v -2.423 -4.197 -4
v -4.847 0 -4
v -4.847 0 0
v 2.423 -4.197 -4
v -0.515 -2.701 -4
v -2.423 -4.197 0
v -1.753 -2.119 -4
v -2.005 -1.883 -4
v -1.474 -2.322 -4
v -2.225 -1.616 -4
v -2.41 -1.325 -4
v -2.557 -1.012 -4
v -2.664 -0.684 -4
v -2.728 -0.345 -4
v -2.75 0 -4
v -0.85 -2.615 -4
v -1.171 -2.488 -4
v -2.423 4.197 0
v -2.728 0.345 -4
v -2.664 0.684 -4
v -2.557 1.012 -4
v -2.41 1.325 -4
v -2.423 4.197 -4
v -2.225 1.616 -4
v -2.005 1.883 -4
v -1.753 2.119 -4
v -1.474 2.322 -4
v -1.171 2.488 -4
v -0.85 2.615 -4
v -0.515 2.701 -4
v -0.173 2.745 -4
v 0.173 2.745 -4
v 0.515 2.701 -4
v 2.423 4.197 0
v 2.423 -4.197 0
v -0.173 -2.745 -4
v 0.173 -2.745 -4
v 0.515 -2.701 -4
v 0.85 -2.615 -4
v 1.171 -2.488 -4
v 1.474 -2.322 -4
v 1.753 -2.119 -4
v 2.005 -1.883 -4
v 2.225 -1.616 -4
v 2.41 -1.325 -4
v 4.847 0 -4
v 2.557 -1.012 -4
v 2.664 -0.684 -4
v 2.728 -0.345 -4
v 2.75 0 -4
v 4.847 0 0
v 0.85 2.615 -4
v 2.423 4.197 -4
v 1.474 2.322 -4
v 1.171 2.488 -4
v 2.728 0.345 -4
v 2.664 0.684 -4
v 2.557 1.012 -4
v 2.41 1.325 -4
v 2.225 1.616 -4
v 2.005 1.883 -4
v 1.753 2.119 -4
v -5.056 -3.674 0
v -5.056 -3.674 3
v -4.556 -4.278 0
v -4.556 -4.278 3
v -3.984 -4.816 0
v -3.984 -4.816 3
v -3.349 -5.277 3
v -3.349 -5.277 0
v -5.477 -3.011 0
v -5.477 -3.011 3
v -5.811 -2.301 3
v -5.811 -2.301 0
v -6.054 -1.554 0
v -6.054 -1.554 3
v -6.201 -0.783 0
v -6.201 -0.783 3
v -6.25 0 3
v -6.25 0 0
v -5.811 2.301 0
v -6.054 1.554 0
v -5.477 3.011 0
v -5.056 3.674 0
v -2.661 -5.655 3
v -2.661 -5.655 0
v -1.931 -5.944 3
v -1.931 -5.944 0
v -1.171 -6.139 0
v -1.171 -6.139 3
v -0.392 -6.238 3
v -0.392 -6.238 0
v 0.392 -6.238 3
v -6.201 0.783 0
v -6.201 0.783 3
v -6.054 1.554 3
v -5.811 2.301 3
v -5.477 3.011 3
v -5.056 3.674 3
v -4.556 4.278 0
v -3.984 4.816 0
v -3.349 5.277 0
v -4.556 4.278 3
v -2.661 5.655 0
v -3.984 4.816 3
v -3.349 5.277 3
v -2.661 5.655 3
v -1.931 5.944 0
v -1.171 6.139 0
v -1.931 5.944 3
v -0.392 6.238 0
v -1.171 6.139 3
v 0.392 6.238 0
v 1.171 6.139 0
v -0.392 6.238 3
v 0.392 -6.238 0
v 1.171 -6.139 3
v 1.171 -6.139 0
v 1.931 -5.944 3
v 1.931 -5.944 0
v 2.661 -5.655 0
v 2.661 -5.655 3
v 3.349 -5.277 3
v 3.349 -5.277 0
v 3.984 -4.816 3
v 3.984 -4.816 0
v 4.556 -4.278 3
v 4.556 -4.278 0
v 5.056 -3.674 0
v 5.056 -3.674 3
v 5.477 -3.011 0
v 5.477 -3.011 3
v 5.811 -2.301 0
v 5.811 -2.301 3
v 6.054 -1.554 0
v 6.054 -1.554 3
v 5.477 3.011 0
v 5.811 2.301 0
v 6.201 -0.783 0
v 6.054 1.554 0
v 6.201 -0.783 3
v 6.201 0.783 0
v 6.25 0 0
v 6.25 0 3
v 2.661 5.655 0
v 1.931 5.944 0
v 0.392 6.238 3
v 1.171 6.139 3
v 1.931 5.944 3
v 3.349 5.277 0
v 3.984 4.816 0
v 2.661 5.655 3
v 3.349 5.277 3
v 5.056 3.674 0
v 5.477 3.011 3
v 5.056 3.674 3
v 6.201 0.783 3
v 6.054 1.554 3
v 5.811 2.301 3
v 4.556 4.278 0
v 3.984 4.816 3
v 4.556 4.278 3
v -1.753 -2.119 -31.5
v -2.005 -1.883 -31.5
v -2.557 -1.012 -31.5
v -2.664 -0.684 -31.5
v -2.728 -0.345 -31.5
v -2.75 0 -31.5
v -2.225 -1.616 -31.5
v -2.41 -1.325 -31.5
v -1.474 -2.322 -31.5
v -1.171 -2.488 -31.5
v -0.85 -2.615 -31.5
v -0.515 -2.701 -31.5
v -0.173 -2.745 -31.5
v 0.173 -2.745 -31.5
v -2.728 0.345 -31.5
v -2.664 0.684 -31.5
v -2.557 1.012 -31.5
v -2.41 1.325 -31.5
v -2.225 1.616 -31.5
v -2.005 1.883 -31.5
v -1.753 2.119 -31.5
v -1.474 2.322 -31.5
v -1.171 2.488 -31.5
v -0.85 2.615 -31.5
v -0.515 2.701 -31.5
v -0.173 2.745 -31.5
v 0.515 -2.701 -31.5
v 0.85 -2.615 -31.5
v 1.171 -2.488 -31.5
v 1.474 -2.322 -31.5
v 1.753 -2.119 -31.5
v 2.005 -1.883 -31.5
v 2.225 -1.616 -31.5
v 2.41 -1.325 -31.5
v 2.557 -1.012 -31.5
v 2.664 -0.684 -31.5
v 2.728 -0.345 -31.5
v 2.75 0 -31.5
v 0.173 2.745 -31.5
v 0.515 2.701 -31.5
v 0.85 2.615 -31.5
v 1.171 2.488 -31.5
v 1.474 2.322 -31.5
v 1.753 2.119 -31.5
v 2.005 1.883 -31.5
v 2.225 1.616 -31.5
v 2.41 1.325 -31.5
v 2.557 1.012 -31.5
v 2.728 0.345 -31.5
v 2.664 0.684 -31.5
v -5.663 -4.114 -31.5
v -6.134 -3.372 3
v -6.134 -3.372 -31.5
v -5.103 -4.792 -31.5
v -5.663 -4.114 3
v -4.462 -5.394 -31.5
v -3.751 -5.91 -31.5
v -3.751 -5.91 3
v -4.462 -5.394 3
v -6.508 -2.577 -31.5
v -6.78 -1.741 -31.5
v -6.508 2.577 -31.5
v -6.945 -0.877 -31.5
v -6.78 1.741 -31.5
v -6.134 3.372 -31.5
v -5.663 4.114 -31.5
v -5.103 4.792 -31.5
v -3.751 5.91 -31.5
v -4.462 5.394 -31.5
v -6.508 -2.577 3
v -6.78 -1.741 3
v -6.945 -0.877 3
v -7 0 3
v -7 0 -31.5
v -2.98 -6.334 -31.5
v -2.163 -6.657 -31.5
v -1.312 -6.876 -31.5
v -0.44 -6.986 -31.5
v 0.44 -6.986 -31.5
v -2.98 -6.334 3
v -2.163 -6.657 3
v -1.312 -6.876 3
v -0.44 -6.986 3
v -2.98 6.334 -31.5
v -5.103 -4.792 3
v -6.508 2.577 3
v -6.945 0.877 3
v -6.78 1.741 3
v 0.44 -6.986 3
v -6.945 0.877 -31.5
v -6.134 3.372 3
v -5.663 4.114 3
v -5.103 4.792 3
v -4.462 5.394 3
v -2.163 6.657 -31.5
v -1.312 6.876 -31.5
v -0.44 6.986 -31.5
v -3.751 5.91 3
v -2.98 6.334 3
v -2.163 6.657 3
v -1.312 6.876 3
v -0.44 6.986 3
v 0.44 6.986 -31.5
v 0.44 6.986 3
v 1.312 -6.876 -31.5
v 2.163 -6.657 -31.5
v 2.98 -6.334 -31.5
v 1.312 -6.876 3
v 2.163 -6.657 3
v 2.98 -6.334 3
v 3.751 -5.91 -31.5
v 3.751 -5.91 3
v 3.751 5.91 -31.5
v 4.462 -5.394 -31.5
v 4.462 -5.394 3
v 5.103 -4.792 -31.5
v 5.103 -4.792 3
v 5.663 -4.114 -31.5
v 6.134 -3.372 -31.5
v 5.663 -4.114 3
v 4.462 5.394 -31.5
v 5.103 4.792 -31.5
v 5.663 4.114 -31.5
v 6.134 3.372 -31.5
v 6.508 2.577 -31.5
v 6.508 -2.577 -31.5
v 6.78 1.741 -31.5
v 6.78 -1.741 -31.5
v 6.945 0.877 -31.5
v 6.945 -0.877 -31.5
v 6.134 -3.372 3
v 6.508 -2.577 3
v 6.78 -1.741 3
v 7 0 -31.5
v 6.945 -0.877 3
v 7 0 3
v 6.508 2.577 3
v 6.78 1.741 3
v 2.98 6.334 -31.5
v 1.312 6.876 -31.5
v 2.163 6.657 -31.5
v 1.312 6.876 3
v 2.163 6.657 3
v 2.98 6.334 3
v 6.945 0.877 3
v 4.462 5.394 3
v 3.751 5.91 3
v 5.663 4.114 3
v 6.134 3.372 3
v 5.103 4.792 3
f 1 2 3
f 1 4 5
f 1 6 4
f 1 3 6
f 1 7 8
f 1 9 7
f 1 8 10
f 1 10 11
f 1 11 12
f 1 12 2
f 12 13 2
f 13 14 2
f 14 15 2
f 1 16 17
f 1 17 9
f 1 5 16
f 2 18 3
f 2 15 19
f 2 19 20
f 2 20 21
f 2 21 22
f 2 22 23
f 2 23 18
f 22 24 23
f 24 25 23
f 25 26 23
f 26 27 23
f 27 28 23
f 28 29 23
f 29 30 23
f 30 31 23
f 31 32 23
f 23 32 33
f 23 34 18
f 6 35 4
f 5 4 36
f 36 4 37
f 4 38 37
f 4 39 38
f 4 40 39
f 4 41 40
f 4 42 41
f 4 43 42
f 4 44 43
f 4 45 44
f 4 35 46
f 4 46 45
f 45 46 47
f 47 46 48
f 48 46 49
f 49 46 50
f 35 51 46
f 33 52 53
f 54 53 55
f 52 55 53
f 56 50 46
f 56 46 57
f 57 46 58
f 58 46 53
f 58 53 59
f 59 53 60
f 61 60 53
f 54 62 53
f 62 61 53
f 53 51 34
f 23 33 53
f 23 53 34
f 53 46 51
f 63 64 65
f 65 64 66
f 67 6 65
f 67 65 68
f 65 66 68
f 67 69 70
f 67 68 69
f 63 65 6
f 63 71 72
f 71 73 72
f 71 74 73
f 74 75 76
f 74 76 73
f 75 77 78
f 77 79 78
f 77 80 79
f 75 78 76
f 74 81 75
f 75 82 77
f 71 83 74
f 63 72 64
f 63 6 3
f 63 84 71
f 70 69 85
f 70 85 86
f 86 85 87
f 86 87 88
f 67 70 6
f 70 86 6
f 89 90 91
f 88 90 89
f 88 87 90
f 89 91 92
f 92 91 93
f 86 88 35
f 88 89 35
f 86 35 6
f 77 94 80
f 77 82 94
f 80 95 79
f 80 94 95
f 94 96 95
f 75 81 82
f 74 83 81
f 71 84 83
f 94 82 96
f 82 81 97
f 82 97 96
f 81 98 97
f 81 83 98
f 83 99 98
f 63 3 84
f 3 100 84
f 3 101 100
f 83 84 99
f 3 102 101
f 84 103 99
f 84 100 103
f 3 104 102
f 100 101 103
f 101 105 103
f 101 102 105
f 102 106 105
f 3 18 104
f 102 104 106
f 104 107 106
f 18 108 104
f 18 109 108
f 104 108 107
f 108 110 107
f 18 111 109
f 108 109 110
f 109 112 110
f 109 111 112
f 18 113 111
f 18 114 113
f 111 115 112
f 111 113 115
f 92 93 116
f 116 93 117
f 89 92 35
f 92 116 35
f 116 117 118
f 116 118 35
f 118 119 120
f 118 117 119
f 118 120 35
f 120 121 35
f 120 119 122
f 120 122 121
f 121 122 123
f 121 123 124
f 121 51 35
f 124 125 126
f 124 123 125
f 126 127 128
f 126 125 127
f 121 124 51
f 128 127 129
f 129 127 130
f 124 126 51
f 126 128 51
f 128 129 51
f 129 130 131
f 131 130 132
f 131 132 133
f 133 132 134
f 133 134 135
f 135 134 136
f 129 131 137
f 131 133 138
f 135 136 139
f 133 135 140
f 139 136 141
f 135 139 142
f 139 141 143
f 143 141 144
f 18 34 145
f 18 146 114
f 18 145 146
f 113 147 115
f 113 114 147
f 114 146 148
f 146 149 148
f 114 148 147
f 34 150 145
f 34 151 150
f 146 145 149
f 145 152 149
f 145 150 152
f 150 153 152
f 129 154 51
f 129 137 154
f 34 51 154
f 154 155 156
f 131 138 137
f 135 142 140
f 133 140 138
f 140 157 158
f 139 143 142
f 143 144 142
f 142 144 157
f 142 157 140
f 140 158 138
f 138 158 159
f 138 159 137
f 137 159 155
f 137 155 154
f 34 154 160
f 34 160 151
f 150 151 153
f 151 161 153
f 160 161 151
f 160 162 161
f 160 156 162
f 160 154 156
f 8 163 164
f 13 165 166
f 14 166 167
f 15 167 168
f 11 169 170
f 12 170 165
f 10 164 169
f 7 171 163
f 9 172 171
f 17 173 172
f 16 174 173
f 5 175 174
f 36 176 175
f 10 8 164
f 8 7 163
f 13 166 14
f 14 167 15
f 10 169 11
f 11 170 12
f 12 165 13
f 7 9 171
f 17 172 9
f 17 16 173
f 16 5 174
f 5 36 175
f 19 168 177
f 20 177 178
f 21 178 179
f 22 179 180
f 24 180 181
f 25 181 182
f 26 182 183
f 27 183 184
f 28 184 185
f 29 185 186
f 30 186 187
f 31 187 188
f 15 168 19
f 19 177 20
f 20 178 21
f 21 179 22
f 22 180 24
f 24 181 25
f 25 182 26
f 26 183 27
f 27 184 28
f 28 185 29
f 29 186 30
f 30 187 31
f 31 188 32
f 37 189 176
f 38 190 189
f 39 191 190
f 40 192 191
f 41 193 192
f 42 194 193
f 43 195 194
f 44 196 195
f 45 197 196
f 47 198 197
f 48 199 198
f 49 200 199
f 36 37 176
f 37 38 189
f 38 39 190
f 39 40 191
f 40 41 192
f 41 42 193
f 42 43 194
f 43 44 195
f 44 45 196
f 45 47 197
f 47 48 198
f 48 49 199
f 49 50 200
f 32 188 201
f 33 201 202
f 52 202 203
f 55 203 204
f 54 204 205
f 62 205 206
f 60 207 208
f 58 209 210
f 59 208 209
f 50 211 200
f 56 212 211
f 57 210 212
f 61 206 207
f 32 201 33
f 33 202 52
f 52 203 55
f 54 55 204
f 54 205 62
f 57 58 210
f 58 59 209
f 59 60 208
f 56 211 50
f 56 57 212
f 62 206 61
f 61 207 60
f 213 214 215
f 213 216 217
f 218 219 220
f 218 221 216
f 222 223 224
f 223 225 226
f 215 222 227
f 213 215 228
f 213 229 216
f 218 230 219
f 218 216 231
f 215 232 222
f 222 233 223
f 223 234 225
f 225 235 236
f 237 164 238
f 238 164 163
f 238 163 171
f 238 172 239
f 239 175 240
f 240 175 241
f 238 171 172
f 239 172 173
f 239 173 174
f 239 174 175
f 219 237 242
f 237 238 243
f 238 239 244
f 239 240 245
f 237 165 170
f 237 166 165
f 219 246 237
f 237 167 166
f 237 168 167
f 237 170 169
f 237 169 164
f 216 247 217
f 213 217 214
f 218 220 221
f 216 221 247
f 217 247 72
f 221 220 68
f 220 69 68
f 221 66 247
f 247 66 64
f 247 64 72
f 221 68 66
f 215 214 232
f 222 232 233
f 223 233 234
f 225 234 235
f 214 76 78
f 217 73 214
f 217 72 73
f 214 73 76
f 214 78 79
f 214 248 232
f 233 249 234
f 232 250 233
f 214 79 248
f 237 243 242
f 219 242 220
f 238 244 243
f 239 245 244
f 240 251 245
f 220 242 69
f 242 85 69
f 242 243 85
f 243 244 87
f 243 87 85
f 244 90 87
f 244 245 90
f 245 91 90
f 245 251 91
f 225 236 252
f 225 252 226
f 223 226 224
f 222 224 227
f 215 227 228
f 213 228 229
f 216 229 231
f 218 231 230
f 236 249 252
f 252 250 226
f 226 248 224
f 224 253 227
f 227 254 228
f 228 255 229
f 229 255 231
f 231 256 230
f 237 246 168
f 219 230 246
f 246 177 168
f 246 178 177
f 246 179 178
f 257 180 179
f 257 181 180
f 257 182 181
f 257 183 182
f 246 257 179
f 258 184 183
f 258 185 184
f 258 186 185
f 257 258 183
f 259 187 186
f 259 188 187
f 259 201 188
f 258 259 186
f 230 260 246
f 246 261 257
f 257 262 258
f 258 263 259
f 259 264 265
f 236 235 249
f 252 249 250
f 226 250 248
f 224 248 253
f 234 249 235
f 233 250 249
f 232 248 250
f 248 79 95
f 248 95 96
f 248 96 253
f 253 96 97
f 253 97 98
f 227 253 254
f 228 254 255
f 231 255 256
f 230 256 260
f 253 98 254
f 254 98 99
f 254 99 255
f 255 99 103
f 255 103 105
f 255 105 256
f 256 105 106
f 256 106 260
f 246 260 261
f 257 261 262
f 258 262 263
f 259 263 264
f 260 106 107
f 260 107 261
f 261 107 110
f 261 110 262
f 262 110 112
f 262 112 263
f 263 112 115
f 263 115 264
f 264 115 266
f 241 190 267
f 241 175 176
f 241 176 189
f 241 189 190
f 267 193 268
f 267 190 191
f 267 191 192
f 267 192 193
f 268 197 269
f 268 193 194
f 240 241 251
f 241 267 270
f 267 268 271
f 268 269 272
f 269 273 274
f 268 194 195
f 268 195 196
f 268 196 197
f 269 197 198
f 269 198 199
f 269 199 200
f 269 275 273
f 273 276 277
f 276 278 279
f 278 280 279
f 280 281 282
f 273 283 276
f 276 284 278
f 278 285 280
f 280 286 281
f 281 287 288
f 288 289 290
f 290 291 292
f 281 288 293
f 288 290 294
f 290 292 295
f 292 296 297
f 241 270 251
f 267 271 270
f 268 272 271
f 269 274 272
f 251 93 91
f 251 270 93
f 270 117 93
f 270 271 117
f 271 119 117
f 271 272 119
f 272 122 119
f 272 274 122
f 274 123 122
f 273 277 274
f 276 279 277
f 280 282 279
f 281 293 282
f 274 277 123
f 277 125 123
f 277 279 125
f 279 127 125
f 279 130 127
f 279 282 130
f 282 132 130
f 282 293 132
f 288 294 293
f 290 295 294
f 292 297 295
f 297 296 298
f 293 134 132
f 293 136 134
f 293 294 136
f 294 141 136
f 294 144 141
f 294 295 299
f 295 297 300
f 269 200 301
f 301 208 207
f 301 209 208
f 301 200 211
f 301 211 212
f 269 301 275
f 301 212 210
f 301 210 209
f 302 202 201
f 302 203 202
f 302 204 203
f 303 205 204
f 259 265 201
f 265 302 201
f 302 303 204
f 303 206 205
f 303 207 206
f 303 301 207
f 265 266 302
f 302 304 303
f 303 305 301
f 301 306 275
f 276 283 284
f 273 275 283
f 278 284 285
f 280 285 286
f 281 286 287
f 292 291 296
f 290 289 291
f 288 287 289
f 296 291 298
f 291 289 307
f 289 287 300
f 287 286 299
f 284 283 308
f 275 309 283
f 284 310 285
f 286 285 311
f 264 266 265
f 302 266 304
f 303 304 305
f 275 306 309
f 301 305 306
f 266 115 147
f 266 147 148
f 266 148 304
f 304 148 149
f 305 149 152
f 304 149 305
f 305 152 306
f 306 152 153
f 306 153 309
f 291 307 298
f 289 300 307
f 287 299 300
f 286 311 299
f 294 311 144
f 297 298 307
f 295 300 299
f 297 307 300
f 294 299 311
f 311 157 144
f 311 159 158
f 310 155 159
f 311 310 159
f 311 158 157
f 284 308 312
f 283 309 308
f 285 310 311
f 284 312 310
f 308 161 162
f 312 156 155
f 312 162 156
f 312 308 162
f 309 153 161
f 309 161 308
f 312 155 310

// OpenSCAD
$fn = 50;


difference() {
	union() {
		translate(v = [0, 0, -31.5000000000]) {
			cylinder(h = 34.5000000000, r = 7.0000000000);
		}
	}
	union() {
		translate(v = [0, 0, 0]) {
			rotate(a = [0, 0, 0]) {
				difference() {
					union() {
						translate(v = [0, 0, -4]) {
							linear_extrude(height = 4) {
								polygon(points = [[4.8468000000, 0.0000000000], [2.4234000000, 4.1974519271], [-2.4234000000, 4.1974519271], [-4.8468000000, 0.0000000000], [-2.4234000000, -4.1974519271], [2.4234000000, -4.1974519271]]);
							}
						}
					}
					union();
				}
			}
		}
		#cylinder(h = 3, r = 6.2500000000);
		#translate(v = [0, 0, -100.0000000000]) {
			cylinder(h = 200, r = 2.7500000000);
		}
	}
}
